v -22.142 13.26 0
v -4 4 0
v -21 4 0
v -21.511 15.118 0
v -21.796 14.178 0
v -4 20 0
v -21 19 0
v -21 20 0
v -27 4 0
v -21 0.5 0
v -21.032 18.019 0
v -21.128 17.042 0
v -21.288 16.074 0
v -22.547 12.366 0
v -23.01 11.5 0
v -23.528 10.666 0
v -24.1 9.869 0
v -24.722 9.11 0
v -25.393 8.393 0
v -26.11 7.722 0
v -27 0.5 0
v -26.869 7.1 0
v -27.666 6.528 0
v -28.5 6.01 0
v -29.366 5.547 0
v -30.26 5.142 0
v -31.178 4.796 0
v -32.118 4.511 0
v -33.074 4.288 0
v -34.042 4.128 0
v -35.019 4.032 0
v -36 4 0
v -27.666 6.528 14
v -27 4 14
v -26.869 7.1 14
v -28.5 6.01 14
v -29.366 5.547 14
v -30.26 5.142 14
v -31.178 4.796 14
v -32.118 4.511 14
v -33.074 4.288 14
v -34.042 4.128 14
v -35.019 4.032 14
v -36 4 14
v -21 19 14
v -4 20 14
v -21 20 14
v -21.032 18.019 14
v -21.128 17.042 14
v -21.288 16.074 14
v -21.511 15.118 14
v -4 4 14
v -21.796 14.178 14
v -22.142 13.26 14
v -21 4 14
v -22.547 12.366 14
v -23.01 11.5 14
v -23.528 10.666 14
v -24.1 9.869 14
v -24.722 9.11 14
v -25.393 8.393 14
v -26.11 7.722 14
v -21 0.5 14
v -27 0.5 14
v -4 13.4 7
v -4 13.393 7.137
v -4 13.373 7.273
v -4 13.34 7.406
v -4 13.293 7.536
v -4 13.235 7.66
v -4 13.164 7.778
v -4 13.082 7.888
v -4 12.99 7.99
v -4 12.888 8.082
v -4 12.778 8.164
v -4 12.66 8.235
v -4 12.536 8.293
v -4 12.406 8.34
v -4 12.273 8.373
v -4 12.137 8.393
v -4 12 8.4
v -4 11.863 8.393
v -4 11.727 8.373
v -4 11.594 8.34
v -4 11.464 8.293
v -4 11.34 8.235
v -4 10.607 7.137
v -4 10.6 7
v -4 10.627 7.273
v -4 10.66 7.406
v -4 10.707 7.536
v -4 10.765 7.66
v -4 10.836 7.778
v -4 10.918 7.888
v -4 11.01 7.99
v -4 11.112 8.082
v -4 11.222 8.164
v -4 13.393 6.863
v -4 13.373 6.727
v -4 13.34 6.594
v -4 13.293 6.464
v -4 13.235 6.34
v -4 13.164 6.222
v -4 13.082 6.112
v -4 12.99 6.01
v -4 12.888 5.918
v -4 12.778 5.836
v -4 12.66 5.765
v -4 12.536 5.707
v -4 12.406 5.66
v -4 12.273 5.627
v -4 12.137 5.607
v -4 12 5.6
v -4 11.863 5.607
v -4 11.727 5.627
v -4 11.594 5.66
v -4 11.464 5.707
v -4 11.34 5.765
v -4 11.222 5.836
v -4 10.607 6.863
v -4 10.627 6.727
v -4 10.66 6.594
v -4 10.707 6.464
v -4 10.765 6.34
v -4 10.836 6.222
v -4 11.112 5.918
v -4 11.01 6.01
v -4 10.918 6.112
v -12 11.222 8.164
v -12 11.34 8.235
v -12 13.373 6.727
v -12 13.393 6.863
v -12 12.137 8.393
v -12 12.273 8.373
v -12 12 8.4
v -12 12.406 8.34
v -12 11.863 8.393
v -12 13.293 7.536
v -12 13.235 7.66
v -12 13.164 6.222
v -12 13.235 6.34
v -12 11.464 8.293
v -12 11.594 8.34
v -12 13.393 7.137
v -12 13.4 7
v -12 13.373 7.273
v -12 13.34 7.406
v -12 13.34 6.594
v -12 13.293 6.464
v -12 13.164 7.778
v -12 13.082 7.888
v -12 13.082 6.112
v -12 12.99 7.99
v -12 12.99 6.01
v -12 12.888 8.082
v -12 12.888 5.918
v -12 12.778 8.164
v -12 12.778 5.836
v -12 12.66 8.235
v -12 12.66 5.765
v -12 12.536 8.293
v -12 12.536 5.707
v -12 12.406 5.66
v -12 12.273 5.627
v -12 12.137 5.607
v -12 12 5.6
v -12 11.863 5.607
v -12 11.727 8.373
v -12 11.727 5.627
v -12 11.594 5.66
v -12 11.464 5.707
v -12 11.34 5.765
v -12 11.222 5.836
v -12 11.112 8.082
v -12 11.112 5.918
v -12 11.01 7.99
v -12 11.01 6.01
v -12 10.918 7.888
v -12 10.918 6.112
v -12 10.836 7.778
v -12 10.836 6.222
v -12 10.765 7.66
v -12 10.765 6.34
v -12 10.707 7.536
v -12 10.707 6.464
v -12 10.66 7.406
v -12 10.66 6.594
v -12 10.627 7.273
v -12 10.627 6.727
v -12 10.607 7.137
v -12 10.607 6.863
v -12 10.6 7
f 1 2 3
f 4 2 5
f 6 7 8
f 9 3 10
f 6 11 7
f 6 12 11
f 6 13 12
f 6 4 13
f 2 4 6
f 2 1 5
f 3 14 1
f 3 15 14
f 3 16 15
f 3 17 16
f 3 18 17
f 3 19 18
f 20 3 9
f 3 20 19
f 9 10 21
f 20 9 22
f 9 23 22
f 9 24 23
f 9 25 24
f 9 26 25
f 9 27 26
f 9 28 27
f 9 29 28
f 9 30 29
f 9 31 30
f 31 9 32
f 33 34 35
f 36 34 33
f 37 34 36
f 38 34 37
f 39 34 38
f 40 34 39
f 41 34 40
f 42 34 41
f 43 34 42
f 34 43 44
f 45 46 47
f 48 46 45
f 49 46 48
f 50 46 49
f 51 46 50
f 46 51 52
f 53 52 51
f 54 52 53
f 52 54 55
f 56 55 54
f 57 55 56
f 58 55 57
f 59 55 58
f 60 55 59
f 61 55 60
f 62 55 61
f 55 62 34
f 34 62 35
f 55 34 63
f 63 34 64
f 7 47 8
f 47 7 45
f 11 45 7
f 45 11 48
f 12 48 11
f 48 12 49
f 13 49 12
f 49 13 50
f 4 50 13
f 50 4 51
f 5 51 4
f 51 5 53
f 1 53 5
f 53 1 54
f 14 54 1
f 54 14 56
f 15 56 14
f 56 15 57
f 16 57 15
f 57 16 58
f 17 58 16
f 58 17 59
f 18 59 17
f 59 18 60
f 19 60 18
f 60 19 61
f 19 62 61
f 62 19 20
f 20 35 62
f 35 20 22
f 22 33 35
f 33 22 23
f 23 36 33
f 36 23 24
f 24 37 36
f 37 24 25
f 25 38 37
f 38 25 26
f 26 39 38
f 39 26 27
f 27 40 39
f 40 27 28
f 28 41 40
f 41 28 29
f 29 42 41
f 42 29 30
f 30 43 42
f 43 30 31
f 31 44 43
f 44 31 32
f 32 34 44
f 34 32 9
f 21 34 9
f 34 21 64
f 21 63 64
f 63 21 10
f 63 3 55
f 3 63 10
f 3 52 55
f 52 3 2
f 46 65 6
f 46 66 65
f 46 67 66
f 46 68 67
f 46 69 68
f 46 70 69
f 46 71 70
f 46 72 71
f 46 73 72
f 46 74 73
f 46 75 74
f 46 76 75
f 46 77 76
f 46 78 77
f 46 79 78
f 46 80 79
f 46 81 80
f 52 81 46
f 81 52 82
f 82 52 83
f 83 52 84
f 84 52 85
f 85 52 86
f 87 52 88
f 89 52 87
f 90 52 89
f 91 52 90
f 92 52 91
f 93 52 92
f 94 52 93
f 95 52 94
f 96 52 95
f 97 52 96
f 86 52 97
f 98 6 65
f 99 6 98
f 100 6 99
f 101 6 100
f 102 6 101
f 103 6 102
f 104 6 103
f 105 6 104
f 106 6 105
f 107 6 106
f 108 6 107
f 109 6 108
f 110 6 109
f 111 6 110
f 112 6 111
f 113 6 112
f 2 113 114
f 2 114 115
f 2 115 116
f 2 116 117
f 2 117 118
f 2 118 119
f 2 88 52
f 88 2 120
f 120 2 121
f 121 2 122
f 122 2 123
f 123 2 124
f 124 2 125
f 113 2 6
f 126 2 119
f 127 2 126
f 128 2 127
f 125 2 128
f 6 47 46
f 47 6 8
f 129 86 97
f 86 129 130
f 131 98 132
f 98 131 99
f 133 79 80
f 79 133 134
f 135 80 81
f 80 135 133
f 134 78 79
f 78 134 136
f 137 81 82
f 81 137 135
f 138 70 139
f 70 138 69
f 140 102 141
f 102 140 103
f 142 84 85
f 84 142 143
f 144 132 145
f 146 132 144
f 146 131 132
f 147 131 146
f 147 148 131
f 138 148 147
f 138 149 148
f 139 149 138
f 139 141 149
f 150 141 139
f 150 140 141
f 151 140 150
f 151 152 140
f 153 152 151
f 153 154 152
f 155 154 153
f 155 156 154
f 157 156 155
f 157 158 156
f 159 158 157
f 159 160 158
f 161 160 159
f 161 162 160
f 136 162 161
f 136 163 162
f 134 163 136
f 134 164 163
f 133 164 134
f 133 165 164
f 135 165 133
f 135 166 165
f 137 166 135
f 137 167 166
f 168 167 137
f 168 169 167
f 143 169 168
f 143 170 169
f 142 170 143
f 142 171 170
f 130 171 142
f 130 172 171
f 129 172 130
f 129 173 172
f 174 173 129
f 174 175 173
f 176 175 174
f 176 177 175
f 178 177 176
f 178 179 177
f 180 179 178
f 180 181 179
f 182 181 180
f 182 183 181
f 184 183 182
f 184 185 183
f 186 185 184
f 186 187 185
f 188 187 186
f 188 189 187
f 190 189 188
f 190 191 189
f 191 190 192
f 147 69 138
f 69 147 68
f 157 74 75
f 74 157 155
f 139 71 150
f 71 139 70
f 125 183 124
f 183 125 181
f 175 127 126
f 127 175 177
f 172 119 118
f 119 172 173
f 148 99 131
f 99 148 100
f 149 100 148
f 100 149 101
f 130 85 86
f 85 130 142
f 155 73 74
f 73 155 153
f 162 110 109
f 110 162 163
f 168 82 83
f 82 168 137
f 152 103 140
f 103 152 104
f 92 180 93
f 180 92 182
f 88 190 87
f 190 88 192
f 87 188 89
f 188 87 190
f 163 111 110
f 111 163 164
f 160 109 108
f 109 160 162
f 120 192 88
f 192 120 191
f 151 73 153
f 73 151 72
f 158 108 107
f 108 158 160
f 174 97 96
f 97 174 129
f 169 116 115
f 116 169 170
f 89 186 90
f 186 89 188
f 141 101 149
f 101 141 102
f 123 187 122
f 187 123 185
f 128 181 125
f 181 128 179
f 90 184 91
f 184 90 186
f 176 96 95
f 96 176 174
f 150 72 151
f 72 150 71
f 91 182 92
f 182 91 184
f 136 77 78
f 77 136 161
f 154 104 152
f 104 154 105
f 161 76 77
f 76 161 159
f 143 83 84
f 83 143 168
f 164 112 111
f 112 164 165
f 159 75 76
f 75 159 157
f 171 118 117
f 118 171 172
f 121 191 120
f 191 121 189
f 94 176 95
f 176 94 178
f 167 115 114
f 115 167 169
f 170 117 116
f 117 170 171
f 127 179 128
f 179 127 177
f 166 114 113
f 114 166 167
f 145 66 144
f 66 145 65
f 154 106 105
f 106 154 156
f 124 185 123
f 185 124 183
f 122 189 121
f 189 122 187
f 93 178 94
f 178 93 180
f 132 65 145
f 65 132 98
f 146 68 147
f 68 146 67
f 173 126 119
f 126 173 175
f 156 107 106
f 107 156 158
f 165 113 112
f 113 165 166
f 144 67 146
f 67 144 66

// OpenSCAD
// Paper ramp (print 7, PETG): the white curved pieces along the back of the
// Openprinter's paper plate. Each turns the paper coming down the back wall
// forward onto the platen. A tab hooks into a slot in the back wall and an
// M3 x 8 from under the floor holds it down.
//
// Print lying on its side (as output), no supports.

include <common.scad>

module ramp_profile() {
    c = [back_t + lead_r, paper_z + lead_r];
    difference() {
        union() {
            // body behind the curve, plus a short flat lip at paper height
            translate([back_t, base_t]) square([lead_r + 1, paper_z + lead_r - base_t]);
            // tab into the back wall slot
            translate([back_t - ramp_tab[0], paper_z]) square([ramp_tab[0] + 0.01, ramp_tab[1]]);
        }
        translate(c) circle(r = lead_r, $fn = 96);
        translate([back_t + lead_r, paper_z]) square([10, 50]);
    }
}

module paper_ramp() {
    difference() {
        translate([-ramp_w / 2, 0, 0]) rotate([90, 0, 90]) linear_extrude(ramp_w) ramp_profile();
        translate([0, back_t + 8, base_t - 1]) cylinder(d = m3_tap, h = 9);
    }
}

// print orientation: on its side
rotate([0, -90, 0]) translate([ramp_w / 2, 0, 0]) paper_ramp();
